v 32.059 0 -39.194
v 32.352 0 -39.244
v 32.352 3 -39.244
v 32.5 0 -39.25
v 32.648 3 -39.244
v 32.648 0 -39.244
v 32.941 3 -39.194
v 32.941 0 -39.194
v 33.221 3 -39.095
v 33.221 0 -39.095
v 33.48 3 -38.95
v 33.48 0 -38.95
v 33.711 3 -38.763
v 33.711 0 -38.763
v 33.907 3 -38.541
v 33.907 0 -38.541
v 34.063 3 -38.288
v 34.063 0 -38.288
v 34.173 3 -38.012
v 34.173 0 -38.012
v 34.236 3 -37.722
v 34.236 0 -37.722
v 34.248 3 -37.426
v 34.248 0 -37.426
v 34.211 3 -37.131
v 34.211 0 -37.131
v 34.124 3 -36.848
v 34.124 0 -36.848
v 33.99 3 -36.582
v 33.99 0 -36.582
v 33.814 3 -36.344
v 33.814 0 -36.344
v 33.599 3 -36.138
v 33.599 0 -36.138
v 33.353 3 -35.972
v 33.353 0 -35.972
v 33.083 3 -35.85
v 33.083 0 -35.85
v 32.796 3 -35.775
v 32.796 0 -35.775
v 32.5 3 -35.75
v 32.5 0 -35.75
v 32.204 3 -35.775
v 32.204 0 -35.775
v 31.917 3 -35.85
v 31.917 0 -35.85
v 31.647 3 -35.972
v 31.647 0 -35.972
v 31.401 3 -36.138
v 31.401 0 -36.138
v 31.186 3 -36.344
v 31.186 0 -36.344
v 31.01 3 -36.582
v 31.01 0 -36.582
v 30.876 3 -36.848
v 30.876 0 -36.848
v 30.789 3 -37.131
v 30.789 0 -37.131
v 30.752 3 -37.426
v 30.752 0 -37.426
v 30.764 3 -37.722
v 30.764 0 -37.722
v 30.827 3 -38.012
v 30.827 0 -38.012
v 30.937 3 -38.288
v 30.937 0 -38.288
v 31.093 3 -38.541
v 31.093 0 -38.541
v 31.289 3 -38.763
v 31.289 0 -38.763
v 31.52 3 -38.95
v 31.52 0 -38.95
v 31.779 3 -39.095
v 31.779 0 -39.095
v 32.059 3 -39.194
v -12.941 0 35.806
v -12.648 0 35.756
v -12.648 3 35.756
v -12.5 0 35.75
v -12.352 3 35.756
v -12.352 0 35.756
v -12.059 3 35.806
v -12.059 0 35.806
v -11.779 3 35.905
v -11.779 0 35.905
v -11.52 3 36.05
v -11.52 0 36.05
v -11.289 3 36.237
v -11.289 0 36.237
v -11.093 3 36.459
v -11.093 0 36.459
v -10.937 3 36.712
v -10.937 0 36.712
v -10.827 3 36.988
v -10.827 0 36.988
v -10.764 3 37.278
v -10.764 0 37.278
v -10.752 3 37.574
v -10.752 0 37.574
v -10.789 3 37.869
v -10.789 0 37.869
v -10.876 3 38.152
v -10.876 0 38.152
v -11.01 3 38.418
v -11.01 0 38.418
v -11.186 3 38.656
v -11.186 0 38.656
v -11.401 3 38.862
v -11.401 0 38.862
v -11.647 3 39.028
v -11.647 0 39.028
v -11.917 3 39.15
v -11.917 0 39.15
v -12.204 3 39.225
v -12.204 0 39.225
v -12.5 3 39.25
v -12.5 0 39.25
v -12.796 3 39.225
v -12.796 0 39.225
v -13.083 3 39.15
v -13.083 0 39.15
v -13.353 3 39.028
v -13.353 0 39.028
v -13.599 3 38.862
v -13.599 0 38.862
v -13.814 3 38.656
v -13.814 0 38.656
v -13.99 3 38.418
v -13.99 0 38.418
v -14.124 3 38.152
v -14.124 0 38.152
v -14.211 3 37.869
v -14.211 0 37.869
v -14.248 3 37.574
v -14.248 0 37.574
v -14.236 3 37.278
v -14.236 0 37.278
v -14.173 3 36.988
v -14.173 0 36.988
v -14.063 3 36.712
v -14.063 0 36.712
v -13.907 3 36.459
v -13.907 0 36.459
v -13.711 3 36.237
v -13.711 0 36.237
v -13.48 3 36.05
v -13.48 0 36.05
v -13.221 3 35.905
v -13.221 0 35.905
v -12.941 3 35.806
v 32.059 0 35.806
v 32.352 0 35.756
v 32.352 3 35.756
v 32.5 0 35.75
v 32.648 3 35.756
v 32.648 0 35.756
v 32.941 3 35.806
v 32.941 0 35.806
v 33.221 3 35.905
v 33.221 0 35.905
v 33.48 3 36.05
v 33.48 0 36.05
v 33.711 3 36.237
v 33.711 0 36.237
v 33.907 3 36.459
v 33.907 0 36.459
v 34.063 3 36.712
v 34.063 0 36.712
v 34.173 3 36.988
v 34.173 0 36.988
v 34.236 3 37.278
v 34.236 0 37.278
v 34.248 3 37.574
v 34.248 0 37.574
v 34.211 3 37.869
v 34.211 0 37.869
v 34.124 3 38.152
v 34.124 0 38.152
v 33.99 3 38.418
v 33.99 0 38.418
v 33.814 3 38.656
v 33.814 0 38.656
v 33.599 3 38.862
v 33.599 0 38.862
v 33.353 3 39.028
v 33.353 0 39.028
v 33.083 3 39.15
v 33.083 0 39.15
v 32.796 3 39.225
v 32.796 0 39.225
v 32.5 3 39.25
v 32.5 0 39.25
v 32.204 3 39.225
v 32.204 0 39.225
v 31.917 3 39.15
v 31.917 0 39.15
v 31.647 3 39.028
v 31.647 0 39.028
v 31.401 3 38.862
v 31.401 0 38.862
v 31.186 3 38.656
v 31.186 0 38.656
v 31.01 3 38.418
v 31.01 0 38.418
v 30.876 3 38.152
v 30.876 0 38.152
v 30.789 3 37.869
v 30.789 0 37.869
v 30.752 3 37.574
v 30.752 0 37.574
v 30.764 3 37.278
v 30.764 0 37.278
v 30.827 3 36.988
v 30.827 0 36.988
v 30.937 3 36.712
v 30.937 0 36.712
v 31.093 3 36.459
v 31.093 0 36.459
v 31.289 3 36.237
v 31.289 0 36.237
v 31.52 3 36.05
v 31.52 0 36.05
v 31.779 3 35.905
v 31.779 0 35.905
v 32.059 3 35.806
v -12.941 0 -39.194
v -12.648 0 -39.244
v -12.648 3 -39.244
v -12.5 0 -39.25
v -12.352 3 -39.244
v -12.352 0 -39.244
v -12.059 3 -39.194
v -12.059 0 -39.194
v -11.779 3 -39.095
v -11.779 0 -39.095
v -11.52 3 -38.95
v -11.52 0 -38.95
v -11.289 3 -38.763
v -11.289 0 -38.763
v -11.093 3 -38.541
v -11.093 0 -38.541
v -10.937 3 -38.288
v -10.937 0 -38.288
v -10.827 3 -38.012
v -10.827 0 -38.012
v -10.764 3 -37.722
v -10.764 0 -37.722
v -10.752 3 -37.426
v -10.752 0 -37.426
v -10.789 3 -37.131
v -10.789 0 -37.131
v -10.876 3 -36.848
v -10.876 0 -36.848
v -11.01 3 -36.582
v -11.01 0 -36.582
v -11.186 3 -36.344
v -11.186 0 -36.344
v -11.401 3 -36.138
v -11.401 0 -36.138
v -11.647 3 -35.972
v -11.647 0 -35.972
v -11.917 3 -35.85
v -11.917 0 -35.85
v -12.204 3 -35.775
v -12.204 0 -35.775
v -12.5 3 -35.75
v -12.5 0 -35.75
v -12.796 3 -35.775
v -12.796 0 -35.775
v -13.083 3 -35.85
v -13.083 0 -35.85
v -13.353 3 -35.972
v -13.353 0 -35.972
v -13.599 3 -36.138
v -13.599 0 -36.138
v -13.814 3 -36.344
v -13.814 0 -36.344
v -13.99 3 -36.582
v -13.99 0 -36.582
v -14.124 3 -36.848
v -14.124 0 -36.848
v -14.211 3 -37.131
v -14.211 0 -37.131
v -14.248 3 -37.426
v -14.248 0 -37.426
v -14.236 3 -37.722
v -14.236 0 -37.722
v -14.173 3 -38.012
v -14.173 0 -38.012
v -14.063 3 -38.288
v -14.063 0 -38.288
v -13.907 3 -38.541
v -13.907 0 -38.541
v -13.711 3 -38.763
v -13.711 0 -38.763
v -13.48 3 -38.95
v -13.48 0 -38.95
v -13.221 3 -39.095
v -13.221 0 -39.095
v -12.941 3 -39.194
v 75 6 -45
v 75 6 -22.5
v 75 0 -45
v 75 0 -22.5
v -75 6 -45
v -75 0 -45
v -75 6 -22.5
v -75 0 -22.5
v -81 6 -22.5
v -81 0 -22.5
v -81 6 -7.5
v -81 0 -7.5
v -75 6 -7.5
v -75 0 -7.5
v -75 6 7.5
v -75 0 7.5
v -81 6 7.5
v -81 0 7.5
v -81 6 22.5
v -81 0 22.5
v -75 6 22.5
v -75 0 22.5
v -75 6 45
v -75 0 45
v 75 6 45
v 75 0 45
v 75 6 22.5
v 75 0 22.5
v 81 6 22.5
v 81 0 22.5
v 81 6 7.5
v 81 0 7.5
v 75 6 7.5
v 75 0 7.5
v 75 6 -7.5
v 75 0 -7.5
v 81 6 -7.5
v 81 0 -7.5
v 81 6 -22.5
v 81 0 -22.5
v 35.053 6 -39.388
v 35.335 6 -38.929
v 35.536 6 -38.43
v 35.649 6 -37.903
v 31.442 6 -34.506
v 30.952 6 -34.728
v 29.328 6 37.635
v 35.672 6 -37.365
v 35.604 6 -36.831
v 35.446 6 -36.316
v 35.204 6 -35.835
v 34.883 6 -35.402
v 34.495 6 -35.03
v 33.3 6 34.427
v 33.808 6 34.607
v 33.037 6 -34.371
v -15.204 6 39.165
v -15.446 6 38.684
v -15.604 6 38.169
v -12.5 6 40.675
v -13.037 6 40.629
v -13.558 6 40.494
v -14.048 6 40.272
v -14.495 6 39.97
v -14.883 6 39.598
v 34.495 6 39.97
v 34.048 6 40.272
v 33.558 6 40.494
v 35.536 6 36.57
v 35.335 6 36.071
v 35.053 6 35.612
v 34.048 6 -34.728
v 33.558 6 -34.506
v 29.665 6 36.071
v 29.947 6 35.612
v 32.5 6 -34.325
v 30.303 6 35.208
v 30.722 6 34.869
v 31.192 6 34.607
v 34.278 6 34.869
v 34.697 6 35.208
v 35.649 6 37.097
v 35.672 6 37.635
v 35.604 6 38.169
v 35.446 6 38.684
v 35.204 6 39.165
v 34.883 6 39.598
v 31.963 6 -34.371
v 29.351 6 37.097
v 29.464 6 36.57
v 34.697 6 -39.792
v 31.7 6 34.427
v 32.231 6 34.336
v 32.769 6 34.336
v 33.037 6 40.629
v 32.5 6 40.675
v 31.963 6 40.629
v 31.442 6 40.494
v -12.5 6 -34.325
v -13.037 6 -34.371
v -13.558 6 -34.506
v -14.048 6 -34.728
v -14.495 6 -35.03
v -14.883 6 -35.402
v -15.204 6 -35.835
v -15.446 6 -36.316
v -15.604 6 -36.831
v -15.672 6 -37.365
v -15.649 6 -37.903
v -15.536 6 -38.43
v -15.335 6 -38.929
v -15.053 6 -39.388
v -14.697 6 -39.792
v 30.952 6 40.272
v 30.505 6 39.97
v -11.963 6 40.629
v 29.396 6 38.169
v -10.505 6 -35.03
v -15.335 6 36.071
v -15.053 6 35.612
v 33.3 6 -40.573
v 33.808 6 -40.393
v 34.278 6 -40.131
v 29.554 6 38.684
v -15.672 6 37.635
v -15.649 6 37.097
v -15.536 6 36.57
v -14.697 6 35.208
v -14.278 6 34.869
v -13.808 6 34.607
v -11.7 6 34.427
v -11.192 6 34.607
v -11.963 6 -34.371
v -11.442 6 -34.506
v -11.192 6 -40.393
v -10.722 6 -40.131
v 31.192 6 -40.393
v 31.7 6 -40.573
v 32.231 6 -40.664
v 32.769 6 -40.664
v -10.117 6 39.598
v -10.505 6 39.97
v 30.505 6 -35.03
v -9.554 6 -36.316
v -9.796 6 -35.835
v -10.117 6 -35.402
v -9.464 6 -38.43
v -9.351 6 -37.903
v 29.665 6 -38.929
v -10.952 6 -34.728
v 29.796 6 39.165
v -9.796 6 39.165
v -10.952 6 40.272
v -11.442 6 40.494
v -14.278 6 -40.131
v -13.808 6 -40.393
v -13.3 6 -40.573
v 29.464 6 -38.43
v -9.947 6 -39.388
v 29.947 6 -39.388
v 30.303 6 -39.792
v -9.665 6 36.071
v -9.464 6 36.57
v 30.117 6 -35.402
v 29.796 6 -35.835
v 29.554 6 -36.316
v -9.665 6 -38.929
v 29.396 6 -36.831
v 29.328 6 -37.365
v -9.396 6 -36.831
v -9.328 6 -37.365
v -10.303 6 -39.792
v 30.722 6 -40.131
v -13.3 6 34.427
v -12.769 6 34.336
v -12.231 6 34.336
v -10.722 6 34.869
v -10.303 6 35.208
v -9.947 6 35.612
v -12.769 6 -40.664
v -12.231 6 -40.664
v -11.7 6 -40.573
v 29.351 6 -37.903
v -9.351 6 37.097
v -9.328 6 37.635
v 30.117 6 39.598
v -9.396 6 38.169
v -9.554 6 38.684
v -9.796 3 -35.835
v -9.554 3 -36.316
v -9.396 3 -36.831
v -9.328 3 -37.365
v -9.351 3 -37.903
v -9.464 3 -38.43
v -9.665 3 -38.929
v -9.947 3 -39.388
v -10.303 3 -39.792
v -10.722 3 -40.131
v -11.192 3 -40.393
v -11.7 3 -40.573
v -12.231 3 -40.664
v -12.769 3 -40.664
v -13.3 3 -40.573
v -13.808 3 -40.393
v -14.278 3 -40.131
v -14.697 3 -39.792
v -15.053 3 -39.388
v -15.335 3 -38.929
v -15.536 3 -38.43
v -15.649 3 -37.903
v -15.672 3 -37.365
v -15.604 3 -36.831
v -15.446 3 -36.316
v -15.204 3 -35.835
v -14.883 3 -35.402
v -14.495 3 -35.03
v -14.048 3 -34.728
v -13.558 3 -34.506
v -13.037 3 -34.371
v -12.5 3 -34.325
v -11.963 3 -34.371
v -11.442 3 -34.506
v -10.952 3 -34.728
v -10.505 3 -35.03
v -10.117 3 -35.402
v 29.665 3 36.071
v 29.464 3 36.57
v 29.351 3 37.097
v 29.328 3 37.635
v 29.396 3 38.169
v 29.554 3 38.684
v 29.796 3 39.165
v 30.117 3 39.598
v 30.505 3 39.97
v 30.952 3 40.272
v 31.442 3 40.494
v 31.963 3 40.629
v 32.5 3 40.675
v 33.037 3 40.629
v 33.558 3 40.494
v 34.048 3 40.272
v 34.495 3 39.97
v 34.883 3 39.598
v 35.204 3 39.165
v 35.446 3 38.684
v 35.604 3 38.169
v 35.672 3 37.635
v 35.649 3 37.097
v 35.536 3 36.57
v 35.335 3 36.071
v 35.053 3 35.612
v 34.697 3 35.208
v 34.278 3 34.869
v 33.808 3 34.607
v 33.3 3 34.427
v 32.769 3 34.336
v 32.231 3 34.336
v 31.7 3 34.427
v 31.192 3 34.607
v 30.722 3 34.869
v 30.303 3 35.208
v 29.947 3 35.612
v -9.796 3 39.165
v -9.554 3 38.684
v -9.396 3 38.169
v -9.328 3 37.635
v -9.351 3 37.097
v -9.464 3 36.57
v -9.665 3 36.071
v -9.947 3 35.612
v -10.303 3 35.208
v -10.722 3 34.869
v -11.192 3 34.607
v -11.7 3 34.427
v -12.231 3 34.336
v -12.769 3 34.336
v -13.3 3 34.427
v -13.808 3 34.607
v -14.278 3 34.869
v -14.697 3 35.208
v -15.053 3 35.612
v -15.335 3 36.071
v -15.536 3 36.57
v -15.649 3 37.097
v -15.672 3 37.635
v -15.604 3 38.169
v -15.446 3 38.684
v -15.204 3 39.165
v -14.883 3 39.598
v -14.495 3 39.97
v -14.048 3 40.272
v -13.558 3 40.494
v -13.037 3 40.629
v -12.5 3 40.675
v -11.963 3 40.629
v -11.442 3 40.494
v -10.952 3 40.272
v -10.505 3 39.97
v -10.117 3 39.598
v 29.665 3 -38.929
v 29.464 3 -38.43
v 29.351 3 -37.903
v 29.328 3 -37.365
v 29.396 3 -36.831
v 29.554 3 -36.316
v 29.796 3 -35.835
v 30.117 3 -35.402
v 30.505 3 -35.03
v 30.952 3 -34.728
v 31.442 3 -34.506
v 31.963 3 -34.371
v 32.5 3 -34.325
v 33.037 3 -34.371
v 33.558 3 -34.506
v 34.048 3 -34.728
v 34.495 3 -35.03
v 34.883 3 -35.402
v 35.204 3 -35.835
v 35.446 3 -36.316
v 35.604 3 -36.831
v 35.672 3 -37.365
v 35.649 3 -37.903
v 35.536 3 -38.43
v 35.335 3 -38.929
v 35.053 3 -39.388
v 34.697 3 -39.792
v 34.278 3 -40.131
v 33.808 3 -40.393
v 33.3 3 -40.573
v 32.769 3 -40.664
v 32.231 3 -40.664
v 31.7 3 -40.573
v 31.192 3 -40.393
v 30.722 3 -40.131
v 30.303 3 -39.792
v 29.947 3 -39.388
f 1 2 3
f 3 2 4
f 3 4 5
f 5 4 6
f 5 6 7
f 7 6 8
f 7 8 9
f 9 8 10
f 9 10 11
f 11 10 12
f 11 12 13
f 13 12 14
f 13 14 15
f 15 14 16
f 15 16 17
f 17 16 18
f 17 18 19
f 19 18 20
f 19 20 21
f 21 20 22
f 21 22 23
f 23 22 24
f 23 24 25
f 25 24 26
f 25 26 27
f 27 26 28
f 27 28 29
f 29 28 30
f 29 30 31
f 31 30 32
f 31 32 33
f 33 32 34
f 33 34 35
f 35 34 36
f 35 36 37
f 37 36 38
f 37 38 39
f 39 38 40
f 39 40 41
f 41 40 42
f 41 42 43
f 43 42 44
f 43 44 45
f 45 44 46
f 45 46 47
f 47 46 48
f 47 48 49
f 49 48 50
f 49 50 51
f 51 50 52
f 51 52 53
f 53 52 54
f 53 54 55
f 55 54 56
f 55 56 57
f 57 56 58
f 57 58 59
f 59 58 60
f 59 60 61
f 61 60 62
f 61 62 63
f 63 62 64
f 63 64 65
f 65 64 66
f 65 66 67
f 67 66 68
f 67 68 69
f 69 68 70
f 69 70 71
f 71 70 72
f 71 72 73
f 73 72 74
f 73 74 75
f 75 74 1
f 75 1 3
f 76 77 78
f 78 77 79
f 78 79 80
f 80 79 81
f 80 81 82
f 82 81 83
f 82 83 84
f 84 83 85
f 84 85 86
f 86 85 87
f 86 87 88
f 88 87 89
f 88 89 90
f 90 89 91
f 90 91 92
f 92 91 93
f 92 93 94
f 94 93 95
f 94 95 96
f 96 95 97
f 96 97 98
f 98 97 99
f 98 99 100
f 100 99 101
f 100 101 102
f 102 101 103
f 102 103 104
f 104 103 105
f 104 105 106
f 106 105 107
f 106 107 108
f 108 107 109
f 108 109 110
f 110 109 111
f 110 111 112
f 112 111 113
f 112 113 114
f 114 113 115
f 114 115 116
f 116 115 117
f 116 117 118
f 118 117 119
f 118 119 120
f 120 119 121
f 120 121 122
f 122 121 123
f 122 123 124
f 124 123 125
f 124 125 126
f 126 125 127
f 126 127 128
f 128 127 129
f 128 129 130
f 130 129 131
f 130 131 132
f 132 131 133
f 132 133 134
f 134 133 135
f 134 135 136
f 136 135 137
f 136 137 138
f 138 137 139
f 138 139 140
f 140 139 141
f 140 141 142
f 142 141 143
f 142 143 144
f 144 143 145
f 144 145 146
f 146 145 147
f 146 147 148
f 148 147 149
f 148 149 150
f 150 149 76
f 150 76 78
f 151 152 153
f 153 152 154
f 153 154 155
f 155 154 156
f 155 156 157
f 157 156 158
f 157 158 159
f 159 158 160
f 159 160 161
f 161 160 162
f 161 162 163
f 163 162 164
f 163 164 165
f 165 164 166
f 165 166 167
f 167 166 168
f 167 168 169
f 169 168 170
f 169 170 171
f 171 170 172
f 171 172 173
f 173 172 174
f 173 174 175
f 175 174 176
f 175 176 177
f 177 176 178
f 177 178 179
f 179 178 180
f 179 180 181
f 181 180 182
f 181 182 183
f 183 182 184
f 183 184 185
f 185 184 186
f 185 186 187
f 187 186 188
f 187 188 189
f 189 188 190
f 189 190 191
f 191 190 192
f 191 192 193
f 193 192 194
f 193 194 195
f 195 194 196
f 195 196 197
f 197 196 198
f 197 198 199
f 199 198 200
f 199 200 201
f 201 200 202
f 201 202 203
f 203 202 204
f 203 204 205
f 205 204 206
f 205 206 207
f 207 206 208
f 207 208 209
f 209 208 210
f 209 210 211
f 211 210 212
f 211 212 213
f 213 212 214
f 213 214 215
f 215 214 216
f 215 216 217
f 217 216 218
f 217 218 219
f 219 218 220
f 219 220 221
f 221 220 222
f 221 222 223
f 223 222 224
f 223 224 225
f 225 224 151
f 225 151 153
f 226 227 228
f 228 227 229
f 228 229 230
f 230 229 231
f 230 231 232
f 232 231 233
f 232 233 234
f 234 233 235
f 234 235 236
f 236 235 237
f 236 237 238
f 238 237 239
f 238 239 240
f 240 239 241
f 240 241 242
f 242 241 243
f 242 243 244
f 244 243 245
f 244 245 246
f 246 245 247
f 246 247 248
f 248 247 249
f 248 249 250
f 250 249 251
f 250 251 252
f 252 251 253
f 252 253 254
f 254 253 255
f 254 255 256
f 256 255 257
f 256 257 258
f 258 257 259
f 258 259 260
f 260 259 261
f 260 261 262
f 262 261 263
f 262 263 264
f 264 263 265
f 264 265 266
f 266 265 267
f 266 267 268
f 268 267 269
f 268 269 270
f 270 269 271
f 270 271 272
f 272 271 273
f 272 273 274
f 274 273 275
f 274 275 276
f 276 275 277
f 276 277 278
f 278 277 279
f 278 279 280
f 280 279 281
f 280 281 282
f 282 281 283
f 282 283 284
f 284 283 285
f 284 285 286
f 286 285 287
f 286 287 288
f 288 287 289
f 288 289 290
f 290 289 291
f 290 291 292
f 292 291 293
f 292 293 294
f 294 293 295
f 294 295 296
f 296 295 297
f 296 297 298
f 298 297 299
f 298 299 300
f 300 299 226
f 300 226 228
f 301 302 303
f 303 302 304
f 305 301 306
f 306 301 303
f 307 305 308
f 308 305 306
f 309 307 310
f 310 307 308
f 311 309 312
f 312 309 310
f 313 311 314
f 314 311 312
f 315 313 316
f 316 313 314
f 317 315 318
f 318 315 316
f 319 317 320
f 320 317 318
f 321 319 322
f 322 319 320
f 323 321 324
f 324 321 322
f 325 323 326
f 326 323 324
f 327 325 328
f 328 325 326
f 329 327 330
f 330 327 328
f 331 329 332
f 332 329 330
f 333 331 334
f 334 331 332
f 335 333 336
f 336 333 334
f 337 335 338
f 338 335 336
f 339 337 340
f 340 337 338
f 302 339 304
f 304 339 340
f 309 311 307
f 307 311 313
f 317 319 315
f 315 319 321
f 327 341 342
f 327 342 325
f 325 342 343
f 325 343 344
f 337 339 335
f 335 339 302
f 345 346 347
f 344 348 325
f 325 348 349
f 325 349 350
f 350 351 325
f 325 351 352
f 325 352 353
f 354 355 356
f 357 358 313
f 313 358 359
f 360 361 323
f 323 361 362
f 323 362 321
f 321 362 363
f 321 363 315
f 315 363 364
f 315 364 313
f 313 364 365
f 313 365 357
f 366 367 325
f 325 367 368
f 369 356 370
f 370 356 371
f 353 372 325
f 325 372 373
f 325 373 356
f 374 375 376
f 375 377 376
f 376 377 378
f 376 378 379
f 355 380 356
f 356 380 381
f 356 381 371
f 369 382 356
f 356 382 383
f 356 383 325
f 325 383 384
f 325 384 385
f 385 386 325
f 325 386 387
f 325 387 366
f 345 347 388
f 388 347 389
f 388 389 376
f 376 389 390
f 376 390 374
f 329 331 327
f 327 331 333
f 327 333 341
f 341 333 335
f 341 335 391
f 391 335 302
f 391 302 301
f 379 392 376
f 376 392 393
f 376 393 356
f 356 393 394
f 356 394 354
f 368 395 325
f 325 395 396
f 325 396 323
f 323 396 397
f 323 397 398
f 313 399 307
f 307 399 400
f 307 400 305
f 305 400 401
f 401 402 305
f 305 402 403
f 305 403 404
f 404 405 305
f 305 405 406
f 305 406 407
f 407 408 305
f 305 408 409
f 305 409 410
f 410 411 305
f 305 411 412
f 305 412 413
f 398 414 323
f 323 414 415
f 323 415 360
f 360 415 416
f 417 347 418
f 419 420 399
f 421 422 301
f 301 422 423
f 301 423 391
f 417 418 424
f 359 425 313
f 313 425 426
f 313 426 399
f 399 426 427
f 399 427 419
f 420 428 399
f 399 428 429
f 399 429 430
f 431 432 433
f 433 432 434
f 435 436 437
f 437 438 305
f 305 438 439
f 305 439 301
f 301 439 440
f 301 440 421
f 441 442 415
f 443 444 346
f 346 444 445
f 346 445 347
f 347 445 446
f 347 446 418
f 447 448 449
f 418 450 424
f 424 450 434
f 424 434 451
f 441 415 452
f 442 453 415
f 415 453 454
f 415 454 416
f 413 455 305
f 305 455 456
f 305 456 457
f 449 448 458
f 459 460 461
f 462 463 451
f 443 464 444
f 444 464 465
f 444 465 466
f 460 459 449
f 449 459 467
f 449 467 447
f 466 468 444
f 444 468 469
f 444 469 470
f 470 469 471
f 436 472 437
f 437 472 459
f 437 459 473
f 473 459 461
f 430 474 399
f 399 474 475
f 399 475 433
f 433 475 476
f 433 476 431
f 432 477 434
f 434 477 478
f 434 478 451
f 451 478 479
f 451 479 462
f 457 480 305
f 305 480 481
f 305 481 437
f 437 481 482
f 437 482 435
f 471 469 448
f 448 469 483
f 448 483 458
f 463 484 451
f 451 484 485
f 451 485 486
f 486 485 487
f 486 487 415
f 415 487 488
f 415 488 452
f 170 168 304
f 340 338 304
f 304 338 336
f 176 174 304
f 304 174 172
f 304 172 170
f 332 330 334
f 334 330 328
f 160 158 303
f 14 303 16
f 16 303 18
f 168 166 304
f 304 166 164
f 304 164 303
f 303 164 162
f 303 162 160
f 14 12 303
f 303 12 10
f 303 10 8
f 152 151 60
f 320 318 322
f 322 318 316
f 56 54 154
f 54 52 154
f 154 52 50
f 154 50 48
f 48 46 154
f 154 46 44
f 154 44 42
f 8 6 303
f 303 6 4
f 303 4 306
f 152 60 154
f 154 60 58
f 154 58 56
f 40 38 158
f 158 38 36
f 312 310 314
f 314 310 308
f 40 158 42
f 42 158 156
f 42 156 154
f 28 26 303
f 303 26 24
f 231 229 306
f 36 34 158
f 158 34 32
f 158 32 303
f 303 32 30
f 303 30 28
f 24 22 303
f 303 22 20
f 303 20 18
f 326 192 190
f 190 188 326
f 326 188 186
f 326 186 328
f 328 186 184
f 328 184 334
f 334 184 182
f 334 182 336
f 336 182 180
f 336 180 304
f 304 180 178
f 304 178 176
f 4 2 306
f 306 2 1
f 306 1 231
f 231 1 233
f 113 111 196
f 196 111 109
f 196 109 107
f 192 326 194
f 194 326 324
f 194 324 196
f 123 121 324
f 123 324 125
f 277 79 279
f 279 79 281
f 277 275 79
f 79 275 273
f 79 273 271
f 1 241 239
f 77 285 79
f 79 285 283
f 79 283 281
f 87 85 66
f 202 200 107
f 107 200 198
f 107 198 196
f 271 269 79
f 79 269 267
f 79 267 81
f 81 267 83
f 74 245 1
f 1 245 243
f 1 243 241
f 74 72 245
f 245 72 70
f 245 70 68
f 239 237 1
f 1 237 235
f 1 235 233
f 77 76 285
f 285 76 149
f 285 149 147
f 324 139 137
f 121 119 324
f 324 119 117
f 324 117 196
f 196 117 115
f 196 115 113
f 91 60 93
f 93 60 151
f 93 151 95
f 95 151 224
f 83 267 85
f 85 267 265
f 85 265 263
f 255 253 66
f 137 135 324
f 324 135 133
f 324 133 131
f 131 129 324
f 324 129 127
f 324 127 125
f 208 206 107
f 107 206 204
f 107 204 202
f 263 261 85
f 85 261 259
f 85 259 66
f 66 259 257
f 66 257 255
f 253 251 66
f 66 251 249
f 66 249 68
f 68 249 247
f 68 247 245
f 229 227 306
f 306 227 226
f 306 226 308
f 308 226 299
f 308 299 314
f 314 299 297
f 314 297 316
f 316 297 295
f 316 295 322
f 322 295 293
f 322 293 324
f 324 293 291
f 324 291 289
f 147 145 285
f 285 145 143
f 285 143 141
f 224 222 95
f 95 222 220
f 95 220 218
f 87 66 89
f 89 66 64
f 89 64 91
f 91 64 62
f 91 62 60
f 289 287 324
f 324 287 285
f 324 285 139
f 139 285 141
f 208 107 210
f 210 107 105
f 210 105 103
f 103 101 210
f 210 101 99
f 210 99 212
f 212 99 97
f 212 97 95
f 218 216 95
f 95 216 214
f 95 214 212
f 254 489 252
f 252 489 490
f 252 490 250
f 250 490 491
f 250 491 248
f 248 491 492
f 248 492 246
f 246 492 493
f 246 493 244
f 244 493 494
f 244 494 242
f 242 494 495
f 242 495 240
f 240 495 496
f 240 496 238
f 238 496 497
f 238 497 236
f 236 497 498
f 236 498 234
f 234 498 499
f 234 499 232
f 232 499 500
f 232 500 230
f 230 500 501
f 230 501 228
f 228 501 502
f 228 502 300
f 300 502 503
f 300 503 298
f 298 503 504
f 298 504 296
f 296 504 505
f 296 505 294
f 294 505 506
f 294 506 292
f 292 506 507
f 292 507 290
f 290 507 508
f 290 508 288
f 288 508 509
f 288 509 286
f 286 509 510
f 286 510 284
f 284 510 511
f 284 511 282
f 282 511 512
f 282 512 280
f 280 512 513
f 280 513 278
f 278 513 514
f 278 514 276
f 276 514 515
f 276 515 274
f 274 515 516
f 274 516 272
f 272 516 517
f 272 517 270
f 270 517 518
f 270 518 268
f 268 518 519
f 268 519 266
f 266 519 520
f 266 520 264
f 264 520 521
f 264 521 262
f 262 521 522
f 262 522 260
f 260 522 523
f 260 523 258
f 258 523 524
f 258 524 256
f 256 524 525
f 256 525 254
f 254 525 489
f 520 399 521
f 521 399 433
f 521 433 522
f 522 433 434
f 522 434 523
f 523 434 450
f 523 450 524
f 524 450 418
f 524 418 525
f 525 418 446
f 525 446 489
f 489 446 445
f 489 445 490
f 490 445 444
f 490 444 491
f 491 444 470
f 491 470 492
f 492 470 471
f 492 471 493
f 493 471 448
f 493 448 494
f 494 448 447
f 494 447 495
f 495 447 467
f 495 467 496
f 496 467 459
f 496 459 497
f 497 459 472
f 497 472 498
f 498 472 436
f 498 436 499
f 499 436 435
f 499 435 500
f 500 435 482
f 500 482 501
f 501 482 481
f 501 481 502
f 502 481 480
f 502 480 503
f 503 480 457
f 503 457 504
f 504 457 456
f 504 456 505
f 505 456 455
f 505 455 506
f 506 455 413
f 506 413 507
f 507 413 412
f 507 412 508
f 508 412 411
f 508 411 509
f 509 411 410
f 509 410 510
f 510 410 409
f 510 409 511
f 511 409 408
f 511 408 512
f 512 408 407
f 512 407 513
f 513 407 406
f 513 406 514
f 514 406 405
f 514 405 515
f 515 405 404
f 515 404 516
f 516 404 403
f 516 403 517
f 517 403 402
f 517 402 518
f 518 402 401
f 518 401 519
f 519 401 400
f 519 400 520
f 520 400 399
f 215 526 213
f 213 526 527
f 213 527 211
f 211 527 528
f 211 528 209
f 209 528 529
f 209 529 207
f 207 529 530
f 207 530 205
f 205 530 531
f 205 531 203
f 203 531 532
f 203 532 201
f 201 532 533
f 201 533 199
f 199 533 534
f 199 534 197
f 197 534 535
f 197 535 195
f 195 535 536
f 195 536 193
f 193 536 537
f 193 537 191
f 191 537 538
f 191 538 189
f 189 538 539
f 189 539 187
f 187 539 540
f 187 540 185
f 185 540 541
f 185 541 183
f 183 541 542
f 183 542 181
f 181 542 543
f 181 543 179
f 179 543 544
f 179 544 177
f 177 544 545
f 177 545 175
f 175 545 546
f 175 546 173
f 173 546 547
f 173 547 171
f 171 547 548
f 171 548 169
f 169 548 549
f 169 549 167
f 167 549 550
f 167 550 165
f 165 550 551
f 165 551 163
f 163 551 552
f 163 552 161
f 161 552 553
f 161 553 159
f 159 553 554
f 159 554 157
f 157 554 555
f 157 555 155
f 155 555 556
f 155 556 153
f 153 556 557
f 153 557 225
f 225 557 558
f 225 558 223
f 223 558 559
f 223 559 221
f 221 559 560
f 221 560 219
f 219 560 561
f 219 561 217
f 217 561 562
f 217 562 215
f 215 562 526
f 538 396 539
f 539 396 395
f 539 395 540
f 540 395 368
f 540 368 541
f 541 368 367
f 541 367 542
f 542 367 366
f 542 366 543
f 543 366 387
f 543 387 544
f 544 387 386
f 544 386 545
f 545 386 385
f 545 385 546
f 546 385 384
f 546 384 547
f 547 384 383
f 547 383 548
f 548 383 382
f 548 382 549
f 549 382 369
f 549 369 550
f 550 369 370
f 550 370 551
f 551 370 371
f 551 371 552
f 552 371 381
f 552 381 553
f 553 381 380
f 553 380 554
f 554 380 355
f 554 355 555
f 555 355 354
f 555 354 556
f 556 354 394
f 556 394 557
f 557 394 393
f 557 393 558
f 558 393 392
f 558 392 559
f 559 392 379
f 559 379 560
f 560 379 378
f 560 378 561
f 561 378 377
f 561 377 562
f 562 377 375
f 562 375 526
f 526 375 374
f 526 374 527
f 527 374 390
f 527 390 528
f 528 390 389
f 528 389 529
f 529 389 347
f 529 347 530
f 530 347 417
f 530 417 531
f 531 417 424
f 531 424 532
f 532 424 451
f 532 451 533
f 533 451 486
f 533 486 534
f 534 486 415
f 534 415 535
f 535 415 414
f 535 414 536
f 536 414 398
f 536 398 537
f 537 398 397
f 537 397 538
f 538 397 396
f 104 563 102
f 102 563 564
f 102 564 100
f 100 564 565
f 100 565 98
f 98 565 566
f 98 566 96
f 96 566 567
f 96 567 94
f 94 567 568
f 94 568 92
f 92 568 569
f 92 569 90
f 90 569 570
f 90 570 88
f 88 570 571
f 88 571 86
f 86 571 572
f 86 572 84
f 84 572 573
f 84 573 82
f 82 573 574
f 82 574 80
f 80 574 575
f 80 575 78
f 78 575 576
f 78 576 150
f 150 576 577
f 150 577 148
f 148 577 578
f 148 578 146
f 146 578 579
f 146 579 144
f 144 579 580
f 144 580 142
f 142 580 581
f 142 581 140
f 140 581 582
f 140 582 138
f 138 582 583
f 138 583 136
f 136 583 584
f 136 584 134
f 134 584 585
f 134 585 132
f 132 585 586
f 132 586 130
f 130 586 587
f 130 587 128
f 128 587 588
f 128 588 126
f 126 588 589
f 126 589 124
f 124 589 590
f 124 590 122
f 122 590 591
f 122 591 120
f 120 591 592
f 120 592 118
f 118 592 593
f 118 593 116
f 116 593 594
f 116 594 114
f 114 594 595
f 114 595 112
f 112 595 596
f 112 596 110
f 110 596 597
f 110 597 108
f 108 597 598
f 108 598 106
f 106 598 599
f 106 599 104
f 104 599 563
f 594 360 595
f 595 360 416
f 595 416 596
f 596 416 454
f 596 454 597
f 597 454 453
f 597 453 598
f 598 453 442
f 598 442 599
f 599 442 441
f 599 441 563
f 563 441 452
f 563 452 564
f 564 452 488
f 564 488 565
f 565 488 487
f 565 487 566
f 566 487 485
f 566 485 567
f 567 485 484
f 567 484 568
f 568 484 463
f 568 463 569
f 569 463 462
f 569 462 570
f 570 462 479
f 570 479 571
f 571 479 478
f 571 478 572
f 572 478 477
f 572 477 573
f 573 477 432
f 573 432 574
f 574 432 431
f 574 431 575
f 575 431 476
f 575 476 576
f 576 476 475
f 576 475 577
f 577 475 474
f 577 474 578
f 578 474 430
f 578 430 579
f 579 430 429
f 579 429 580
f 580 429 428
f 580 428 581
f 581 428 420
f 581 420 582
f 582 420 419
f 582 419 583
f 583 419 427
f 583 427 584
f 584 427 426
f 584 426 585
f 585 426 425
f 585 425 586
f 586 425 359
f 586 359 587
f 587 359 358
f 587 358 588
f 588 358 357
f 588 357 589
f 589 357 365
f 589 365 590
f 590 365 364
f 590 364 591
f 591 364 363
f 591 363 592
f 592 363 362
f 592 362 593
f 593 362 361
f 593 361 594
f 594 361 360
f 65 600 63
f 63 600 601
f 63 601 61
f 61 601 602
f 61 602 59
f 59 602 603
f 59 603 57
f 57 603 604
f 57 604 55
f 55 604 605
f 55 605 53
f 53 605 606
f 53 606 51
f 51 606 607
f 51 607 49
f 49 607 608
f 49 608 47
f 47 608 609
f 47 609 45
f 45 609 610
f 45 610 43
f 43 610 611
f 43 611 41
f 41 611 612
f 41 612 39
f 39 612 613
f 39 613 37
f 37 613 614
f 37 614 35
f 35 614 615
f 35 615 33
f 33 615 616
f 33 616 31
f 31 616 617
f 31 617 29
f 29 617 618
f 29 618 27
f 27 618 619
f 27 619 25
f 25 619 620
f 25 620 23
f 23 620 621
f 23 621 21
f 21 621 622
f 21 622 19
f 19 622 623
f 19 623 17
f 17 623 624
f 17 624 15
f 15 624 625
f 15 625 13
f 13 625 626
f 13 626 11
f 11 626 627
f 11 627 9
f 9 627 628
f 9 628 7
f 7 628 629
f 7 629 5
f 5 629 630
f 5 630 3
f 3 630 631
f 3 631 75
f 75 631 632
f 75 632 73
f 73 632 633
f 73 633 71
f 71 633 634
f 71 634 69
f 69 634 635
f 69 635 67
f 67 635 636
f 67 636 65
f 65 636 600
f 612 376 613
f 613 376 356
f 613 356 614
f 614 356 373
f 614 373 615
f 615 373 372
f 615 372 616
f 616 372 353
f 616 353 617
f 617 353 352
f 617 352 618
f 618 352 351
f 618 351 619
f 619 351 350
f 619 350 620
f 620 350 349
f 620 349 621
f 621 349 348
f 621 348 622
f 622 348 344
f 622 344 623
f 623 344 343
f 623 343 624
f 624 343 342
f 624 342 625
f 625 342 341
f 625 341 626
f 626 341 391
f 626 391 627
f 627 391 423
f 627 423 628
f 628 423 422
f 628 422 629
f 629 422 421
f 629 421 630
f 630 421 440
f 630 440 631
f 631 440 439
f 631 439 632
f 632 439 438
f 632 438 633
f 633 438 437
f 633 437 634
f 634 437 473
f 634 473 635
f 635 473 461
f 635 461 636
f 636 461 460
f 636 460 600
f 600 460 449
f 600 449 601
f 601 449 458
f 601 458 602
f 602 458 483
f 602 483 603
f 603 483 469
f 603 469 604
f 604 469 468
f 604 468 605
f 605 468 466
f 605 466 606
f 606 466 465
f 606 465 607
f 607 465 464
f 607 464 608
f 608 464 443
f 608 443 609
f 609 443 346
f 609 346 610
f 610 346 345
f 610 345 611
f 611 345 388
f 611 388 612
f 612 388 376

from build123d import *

# Parameters (mm, degrees)
BOSS_EXTRUDE1_DEPTH = 6
SKETCH2_R           = 1.75
CUT_EXTRUDE1_DEPTH  = 6
SKETCH3_R           = 3.175
CUT_EXTRUDE2_DEPTH  = 3


with BuildPart() as part:
    # Sketch1 → Boss-Extrude1 (new body)
    with BuildSketch(Plane(origin=(0, 0, 0), x_dir=(1, 0, 0), z_dir=(0, 1, 0))):
        Polygon((-75, -45), (75, -45), (75, -22.5), (81, -22.5), (81, -7.5), (75, -7.5), (75, 7.5), (81, 7.5), (81, 22.5), (75, 22.5), (75, 45), (-75, 45), (-75, 22.5), (-81, 22.5), (-81, 7.5), (-75, 7.5), (-75, -7.5), (-81, -7.5), (-81, -22.5), (-75, -22.5), align=None)
    extrude(amount=BOSS_EXTRUDE1_DEPTH)

    # Sketch2 → Cut-Extrude1 (cut)
    with BuildSketch(Plane(origin=(0, 6, 0), x_dir=(1, 0, 0), z_dir=(0, 1, 0))):
        with Locations(Location((32.5, 37.5, 0), (0, 0, 270))):
            Circle(SKETCH2_R)
        with Locations(Location((32.5, -37.5, 0), (0, 0, 270))):
            Circle(SKETCH2_R)
        with Locations(Location((-12.5, 37.5, 0), (0, 0, 270))):
            Circle(SKETCH2_R)
        with Locations(Location((-12.5, -37.5, 0), (0, 0, 270))):
            Circle(SKETCH2_R)
    extrude(amount=-CUT_EXTRUDE1_DEPTH, mode=Mode.SUBTRACT)

    # Sketch3 → Cut-Extrude2 (cut)
    with BuildSketch(Plane(origin=(0, 6, 0), x_dir=(1, 0, 0), z_dir=(0, 1, 0))):
        with Locations(Location((-12.5, 37.5, 0), (0, 0, 270))):
            Circle(SKETCH3_R)
        with Locations(Location((32.5, 37.5, 0), (0, 0, 270))):
            Circle(SKETCH3_R)
        with Locations(Location((32.5, -37.5, 0), (0, 0, 270))):
            Circle(SKETCH3_R)
        with Locations(Location((-12.5, -37.5, 0), (0, 0, 270))):
            Circle(SKETCH3_R)
    extrude(amount=-CUT_EXTRUDE2_DEPTH, mode=Mode.SUBTRACT)


solid = part.part
